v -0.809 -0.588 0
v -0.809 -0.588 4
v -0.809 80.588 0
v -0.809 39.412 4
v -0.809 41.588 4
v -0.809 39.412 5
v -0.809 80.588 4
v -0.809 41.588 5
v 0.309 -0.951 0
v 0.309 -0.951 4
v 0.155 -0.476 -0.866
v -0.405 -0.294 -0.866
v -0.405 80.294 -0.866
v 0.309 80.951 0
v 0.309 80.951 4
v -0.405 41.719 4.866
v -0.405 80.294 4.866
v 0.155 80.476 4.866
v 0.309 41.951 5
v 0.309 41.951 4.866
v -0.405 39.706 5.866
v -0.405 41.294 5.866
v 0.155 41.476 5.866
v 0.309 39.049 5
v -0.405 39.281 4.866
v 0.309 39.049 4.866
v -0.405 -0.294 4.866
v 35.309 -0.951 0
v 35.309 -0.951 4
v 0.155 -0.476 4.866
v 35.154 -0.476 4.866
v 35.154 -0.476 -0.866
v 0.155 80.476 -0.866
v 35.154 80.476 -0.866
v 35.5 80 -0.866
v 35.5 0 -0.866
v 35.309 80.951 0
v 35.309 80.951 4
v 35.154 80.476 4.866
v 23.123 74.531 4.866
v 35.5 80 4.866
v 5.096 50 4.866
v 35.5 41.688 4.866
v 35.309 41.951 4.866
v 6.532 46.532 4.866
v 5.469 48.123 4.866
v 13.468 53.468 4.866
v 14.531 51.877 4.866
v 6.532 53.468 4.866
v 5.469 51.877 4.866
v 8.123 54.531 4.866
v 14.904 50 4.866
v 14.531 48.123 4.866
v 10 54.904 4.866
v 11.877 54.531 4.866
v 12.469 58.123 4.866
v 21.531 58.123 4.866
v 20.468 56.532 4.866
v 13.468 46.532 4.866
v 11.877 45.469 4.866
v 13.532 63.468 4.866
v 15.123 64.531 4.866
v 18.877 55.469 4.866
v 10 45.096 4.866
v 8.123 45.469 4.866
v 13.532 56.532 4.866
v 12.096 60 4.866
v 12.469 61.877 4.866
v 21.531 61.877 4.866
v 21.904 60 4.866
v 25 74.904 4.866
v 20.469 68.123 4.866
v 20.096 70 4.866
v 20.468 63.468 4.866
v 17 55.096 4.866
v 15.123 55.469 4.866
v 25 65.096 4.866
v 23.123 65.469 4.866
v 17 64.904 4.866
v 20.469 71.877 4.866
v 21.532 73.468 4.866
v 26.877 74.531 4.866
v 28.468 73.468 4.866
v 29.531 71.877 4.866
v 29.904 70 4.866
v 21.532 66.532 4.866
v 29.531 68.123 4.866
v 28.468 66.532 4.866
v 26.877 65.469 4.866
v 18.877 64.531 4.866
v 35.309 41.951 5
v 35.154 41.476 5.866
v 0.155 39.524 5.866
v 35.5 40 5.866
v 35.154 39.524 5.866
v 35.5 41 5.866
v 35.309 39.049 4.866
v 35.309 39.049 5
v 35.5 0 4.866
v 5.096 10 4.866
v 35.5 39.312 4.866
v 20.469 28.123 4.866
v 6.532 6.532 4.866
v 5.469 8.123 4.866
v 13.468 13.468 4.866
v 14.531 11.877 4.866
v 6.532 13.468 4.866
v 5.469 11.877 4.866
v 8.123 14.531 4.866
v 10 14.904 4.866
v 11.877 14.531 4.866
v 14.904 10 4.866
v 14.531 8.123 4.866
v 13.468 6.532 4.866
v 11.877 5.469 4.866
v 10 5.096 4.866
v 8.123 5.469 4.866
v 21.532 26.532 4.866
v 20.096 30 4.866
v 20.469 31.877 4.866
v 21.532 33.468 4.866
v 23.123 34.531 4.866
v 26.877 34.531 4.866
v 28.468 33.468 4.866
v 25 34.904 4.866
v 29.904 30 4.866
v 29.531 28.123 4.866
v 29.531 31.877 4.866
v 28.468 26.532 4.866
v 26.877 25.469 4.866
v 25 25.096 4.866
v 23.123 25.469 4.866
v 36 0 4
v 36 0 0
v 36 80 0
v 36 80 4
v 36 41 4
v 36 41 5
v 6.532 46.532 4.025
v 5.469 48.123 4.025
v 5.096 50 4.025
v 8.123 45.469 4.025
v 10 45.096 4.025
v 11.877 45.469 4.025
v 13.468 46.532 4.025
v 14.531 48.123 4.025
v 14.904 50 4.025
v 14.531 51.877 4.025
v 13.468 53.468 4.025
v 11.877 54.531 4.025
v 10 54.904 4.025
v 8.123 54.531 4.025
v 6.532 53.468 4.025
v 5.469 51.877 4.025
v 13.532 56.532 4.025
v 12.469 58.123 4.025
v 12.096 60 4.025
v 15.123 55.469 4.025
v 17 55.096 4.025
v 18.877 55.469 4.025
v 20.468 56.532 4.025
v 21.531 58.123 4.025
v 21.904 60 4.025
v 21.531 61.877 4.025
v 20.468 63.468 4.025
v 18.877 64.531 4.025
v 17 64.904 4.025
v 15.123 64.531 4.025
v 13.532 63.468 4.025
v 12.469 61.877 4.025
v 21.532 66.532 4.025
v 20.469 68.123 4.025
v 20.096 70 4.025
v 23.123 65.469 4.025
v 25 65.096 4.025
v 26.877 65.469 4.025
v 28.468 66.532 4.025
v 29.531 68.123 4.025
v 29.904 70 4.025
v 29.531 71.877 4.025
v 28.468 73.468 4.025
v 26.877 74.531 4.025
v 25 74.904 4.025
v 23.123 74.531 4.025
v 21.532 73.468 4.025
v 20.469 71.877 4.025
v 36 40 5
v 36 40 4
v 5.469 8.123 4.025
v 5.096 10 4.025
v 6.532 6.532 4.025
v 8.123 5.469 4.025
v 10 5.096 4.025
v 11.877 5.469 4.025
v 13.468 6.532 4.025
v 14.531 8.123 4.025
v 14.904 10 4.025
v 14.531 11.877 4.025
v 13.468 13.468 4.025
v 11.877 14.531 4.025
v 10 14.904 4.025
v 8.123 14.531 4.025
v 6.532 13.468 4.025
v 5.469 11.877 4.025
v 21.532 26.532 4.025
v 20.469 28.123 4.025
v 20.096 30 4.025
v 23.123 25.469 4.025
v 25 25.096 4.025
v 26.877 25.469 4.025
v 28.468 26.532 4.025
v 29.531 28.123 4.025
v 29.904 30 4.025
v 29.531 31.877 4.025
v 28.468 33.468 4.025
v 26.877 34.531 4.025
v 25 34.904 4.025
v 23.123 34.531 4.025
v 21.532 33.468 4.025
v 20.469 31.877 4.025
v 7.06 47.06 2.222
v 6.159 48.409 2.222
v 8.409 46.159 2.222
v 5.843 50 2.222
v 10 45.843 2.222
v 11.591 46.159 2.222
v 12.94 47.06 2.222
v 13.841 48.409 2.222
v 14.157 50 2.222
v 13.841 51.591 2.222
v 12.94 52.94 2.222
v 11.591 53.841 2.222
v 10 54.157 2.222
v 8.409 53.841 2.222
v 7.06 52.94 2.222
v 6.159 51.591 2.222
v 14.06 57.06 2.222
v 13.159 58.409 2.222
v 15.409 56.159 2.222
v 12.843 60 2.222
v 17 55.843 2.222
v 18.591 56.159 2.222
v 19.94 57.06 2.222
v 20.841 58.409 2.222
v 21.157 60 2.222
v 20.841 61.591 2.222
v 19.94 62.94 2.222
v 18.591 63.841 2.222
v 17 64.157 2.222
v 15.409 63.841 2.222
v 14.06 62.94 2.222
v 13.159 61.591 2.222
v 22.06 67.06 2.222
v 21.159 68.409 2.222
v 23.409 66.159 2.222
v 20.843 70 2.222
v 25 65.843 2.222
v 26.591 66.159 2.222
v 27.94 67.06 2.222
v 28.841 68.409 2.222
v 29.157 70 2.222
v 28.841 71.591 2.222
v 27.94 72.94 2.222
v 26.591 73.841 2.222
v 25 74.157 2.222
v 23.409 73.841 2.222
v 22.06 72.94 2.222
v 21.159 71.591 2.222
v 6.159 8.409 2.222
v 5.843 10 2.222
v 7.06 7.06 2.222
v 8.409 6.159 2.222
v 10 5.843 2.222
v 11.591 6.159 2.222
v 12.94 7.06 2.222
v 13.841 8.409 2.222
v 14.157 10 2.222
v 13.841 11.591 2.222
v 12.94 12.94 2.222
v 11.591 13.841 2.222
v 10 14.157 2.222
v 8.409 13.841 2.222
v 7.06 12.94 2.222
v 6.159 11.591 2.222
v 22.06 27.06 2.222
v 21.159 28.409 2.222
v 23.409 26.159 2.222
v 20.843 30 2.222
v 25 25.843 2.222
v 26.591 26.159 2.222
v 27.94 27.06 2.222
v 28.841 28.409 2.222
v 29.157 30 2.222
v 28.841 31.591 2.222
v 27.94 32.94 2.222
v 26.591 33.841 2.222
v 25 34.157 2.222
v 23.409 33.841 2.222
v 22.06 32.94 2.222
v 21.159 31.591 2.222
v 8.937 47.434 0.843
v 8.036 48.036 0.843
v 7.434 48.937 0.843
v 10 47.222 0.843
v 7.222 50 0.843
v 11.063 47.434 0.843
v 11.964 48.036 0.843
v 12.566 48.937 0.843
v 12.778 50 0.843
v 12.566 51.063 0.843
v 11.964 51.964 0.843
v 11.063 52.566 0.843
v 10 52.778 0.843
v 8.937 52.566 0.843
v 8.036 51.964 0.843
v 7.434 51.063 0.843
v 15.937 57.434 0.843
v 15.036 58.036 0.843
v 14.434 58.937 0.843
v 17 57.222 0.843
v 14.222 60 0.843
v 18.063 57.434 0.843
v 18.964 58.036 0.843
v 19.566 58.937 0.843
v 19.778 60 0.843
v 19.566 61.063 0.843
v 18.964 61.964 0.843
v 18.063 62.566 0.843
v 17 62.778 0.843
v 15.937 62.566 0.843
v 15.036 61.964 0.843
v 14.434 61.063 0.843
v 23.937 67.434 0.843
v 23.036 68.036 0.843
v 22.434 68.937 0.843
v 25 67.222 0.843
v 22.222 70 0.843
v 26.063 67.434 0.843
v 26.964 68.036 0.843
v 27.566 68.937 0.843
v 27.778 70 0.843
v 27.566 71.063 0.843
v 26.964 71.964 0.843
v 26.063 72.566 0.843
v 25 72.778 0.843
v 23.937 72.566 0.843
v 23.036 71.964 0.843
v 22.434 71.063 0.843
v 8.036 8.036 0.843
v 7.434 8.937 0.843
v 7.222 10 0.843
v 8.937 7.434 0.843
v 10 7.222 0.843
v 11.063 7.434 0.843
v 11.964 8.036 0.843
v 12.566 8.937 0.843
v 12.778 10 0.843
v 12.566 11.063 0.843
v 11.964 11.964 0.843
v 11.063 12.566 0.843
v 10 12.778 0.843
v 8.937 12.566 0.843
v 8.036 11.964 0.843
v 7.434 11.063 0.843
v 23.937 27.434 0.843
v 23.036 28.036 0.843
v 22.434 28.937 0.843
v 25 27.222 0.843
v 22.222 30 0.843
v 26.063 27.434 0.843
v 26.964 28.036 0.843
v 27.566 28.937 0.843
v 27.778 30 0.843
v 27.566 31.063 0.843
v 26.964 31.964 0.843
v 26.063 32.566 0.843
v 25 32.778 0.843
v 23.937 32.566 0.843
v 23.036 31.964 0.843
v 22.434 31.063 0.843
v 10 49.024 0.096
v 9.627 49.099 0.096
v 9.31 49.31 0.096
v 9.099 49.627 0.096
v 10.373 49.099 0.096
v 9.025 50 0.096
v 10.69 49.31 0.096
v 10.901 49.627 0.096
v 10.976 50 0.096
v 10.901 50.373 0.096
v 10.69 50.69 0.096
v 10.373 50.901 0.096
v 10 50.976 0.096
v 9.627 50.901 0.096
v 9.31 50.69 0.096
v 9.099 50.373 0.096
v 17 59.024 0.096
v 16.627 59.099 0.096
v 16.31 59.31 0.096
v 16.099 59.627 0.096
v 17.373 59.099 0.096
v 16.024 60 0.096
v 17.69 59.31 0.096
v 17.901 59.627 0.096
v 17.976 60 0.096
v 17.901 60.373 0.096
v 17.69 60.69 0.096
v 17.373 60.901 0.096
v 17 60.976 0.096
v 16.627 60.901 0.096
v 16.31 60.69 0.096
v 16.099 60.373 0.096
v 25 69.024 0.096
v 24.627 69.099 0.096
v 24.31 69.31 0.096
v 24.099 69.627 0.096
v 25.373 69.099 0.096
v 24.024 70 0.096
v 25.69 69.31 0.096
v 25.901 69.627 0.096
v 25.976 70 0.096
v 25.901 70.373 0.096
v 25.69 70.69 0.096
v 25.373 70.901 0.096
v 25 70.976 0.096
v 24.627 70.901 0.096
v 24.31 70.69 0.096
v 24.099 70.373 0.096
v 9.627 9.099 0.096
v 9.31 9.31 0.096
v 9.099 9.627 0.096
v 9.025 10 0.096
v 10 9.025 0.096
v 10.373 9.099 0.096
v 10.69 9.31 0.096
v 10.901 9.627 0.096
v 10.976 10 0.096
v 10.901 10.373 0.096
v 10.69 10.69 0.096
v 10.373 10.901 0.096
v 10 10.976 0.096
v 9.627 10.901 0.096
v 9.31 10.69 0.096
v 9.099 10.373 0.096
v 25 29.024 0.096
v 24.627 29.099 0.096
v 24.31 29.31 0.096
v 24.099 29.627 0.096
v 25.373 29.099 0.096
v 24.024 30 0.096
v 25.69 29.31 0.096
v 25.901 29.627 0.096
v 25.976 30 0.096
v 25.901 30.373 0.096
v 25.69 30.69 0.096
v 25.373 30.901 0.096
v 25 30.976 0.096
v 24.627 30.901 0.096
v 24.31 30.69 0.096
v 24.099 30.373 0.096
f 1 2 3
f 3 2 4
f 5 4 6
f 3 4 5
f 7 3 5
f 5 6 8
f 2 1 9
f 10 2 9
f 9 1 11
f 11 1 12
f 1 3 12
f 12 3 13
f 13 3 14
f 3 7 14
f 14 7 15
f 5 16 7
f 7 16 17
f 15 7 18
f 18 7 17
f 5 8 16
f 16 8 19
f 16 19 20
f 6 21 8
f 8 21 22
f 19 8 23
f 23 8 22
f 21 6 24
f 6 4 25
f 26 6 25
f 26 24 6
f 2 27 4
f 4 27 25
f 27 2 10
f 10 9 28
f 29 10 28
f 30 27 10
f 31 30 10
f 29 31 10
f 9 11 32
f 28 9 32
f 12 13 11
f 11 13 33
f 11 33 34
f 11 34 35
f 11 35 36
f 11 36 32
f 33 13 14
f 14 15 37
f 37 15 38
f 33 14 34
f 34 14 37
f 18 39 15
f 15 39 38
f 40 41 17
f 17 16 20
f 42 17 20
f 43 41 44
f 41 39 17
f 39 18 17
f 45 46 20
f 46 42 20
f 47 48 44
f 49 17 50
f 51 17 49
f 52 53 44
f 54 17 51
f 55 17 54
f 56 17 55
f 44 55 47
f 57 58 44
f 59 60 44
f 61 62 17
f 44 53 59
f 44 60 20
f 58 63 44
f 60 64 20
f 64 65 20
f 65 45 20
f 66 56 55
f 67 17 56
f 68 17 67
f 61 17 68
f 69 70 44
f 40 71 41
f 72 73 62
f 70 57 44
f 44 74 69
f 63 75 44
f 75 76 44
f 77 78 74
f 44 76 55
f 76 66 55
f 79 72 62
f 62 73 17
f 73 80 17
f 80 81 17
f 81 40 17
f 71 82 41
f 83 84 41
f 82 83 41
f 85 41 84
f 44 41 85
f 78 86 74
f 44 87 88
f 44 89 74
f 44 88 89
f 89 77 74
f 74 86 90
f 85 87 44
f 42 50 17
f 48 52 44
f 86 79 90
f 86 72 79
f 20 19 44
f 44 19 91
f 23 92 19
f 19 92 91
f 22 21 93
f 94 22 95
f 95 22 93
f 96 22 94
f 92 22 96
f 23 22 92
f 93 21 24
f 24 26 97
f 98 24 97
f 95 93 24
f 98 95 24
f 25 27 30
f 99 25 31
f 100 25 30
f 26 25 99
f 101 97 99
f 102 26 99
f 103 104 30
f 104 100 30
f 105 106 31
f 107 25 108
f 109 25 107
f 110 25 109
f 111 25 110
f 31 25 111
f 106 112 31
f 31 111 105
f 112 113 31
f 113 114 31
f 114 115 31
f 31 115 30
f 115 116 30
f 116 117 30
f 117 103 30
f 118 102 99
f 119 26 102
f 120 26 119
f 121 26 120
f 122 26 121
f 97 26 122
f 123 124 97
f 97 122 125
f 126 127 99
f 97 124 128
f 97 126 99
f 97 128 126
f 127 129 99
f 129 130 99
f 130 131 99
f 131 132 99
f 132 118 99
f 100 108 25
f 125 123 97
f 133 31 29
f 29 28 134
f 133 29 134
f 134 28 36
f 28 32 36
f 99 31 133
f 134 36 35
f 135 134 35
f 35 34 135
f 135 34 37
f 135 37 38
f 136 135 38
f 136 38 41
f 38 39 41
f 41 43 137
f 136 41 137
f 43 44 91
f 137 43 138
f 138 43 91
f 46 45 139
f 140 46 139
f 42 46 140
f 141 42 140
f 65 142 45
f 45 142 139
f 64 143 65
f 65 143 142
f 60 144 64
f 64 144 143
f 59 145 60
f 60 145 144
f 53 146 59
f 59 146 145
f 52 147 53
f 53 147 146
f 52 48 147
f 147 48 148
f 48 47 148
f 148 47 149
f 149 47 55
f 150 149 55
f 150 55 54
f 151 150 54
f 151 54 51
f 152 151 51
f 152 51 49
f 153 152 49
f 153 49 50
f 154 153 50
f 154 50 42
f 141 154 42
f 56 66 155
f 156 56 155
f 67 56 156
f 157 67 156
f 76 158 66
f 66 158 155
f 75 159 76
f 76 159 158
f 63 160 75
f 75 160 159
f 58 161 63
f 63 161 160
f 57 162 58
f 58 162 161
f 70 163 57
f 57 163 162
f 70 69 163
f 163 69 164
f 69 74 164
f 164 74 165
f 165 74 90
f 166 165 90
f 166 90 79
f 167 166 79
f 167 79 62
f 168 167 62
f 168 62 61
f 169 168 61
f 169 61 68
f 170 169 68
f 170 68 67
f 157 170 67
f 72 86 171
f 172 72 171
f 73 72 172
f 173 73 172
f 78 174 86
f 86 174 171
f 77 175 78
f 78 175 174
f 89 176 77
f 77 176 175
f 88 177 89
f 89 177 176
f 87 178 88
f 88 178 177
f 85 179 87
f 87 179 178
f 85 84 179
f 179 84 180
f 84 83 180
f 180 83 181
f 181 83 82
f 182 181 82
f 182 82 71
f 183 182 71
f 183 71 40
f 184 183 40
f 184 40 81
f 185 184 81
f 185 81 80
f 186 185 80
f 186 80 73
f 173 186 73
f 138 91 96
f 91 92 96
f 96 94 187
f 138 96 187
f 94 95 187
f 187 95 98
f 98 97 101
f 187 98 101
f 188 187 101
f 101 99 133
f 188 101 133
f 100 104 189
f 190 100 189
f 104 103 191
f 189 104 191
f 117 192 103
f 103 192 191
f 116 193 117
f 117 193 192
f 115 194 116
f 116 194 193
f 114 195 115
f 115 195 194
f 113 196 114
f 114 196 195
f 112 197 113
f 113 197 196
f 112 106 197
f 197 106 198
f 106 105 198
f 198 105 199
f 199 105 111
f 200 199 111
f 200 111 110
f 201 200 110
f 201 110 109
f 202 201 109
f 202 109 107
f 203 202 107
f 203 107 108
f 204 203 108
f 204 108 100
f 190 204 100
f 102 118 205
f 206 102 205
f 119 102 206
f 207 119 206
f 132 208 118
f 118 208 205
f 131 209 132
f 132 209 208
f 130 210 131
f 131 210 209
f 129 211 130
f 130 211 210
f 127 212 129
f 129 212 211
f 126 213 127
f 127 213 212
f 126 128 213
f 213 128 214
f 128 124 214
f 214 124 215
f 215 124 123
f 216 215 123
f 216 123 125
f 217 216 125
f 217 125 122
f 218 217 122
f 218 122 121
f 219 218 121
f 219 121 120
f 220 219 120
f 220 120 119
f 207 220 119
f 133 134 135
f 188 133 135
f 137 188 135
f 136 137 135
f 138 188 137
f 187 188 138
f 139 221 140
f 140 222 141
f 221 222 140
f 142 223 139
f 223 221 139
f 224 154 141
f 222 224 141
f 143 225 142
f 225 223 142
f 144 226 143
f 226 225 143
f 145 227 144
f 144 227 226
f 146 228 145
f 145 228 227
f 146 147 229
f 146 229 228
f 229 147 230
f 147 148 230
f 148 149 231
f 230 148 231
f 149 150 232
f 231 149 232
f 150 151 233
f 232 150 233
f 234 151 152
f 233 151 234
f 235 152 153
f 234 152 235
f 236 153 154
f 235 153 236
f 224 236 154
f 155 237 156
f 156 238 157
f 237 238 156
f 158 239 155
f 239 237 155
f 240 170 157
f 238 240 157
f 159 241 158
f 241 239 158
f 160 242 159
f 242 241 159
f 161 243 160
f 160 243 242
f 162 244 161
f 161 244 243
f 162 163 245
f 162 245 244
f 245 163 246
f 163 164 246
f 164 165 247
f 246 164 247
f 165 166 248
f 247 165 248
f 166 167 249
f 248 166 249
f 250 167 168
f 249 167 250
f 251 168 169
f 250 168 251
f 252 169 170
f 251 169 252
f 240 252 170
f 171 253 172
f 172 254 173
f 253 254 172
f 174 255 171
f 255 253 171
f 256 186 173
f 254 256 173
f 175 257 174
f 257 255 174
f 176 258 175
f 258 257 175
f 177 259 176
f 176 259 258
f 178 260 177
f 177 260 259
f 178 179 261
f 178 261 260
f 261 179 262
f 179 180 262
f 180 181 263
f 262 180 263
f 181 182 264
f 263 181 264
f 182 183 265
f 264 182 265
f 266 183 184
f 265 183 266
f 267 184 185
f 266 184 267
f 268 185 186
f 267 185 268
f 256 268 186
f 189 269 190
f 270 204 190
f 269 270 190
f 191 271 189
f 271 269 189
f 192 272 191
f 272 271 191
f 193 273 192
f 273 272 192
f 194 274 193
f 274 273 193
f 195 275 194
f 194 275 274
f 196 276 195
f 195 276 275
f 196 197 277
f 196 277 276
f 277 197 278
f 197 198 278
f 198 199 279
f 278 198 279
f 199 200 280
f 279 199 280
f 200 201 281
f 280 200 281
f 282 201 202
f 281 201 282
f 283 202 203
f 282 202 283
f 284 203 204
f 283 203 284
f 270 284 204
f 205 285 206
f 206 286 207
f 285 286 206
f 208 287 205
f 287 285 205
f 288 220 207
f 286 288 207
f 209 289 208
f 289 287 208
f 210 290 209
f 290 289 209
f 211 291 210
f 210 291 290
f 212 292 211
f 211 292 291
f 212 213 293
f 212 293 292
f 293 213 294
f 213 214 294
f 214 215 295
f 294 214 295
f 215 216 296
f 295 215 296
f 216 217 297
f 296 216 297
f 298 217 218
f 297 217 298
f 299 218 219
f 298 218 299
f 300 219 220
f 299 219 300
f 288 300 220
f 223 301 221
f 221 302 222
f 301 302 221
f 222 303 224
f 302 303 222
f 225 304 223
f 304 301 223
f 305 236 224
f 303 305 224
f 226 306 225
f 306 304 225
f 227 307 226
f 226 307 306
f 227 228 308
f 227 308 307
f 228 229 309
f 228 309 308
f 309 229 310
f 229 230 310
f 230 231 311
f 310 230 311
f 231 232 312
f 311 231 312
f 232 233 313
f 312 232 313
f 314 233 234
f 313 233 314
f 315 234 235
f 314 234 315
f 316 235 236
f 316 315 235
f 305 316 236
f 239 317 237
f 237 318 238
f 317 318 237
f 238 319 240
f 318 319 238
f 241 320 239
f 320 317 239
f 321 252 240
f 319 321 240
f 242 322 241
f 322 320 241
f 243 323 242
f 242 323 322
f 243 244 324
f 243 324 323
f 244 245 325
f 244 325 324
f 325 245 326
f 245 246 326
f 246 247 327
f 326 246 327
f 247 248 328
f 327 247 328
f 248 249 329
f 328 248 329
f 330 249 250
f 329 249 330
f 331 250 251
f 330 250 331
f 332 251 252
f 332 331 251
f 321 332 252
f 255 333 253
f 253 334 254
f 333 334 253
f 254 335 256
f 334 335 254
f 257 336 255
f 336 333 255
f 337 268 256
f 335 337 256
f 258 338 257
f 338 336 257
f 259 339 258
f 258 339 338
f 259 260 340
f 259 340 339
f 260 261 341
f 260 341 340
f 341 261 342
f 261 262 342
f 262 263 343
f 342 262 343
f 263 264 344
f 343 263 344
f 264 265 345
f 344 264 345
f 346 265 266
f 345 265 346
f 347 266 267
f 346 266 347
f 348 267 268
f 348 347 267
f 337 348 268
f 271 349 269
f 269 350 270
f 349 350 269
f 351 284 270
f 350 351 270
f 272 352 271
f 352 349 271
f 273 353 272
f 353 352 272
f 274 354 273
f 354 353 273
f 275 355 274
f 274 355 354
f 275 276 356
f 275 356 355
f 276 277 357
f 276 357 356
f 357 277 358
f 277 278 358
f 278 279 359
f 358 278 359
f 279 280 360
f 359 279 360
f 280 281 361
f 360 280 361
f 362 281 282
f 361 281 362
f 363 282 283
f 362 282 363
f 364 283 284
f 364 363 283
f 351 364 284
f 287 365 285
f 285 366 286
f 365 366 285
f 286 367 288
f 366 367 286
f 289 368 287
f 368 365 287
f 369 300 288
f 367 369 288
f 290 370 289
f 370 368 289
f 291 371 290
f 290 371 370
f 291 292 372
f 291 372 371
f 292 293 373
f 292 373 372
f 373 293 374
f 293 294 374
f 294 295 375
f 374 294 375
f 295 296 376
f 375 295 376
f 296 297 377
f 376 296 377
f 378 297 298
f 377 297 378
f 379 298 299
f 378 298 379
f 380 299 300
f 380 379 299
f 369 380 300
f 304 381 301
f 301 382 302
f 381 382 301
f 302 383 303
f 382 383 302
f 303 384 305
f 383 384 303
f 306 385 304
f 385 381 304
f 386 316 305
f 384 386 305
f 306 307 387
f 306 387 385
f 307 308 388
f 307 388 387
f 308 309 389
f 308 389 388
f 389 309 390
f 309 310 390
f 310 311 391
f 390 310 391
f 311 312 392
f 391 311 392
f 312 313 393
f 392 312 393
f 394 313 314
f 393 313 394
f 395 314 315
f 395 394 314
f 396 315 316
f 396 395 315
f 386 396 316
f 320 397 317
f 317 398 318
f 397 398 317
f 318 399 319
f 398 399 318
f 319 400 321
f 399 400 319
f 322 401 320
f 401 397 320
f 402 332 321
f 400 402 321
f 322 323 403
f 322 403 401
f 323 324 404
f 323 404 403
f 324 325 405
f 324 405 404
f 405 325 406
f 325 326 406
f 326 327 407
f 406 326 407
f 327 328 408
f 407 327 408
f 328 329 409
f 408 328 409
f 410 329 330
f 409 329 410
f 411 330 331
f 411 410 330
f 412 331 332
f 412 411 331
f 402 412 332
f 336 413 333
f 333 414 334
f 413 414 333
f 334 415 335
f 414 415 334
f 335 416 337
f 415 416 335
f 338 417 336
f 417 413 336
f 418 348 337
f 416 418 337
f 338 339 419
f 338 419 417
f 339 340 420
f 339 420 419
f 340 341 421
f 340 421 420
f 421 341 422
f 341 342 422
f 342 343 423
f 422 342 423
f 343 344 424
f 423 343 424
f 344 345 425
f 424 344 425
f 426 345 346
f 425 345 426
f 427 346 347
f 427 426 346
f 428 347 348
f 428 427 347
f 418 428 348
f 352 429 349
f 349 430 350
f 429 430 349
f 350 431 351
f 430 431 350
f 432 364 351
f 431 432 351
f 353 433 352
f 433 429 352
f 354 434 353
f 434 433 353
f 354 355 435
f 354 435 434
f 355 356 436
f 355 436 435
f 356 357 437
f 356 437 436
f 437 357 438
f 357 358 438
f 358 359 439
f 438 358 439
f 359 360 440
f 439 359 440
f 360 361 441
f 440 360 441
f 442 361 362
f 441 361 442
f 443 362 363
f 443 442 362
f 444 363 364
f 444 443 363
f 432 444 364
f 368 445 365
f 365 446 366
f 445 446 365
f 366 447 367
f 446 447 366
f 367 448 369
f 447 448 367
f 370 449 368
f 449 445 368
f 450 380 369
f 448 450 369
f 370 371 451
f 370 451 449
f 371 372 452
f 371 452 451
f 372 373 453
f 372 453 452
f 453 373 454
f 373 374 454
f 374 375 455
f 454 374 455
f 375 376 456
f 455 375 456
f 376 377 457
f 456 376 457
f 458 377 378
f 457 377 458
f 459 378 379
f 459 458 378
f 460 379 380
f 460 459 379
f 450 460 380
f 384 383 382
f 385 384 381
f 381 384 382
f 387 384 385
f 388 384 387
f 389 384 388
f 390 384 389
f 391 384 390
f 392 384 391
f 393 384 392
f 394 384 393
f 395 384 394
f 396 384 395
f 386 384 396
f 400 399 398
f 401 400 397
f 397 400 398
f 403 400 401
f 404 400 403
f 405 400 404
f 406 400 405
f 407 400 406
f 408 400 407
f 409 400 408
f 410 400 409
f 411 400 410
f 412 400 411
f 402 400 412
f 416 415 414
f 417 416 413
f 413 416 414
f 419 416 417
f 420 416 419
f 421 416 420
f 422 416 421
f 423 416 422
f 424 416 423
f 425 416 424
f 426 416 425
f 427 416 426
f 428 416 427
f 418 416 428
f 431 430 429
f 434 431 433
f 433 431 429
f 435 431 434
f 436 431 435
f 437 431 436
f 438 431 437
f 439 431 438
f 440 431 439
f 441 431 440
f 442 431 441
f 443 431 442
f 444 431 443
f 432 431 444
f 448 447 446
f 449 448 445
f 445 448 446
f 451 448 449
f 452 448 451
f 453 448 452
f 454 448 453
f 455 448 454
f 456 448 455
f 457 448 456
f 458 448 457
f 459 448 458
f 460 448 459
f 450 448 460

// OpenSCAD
// Loguncov Maxim 13.12.13


//$fn=128;


translate([0,40,0])
minkowski()
{cube([35,1,5]);
sphere(1);
}

difference() {

//основа
minkowski()
{cube([35,80,4]);
sphere(1);
}

//отверстия
translate([10,10,5])sphere(5);
translate([25,30,5])sphere(5);


translate([10,50,5])sphere(5);
translate([25,70,5])sphere(5);
translate([17,60,5])sphere(5);

}
